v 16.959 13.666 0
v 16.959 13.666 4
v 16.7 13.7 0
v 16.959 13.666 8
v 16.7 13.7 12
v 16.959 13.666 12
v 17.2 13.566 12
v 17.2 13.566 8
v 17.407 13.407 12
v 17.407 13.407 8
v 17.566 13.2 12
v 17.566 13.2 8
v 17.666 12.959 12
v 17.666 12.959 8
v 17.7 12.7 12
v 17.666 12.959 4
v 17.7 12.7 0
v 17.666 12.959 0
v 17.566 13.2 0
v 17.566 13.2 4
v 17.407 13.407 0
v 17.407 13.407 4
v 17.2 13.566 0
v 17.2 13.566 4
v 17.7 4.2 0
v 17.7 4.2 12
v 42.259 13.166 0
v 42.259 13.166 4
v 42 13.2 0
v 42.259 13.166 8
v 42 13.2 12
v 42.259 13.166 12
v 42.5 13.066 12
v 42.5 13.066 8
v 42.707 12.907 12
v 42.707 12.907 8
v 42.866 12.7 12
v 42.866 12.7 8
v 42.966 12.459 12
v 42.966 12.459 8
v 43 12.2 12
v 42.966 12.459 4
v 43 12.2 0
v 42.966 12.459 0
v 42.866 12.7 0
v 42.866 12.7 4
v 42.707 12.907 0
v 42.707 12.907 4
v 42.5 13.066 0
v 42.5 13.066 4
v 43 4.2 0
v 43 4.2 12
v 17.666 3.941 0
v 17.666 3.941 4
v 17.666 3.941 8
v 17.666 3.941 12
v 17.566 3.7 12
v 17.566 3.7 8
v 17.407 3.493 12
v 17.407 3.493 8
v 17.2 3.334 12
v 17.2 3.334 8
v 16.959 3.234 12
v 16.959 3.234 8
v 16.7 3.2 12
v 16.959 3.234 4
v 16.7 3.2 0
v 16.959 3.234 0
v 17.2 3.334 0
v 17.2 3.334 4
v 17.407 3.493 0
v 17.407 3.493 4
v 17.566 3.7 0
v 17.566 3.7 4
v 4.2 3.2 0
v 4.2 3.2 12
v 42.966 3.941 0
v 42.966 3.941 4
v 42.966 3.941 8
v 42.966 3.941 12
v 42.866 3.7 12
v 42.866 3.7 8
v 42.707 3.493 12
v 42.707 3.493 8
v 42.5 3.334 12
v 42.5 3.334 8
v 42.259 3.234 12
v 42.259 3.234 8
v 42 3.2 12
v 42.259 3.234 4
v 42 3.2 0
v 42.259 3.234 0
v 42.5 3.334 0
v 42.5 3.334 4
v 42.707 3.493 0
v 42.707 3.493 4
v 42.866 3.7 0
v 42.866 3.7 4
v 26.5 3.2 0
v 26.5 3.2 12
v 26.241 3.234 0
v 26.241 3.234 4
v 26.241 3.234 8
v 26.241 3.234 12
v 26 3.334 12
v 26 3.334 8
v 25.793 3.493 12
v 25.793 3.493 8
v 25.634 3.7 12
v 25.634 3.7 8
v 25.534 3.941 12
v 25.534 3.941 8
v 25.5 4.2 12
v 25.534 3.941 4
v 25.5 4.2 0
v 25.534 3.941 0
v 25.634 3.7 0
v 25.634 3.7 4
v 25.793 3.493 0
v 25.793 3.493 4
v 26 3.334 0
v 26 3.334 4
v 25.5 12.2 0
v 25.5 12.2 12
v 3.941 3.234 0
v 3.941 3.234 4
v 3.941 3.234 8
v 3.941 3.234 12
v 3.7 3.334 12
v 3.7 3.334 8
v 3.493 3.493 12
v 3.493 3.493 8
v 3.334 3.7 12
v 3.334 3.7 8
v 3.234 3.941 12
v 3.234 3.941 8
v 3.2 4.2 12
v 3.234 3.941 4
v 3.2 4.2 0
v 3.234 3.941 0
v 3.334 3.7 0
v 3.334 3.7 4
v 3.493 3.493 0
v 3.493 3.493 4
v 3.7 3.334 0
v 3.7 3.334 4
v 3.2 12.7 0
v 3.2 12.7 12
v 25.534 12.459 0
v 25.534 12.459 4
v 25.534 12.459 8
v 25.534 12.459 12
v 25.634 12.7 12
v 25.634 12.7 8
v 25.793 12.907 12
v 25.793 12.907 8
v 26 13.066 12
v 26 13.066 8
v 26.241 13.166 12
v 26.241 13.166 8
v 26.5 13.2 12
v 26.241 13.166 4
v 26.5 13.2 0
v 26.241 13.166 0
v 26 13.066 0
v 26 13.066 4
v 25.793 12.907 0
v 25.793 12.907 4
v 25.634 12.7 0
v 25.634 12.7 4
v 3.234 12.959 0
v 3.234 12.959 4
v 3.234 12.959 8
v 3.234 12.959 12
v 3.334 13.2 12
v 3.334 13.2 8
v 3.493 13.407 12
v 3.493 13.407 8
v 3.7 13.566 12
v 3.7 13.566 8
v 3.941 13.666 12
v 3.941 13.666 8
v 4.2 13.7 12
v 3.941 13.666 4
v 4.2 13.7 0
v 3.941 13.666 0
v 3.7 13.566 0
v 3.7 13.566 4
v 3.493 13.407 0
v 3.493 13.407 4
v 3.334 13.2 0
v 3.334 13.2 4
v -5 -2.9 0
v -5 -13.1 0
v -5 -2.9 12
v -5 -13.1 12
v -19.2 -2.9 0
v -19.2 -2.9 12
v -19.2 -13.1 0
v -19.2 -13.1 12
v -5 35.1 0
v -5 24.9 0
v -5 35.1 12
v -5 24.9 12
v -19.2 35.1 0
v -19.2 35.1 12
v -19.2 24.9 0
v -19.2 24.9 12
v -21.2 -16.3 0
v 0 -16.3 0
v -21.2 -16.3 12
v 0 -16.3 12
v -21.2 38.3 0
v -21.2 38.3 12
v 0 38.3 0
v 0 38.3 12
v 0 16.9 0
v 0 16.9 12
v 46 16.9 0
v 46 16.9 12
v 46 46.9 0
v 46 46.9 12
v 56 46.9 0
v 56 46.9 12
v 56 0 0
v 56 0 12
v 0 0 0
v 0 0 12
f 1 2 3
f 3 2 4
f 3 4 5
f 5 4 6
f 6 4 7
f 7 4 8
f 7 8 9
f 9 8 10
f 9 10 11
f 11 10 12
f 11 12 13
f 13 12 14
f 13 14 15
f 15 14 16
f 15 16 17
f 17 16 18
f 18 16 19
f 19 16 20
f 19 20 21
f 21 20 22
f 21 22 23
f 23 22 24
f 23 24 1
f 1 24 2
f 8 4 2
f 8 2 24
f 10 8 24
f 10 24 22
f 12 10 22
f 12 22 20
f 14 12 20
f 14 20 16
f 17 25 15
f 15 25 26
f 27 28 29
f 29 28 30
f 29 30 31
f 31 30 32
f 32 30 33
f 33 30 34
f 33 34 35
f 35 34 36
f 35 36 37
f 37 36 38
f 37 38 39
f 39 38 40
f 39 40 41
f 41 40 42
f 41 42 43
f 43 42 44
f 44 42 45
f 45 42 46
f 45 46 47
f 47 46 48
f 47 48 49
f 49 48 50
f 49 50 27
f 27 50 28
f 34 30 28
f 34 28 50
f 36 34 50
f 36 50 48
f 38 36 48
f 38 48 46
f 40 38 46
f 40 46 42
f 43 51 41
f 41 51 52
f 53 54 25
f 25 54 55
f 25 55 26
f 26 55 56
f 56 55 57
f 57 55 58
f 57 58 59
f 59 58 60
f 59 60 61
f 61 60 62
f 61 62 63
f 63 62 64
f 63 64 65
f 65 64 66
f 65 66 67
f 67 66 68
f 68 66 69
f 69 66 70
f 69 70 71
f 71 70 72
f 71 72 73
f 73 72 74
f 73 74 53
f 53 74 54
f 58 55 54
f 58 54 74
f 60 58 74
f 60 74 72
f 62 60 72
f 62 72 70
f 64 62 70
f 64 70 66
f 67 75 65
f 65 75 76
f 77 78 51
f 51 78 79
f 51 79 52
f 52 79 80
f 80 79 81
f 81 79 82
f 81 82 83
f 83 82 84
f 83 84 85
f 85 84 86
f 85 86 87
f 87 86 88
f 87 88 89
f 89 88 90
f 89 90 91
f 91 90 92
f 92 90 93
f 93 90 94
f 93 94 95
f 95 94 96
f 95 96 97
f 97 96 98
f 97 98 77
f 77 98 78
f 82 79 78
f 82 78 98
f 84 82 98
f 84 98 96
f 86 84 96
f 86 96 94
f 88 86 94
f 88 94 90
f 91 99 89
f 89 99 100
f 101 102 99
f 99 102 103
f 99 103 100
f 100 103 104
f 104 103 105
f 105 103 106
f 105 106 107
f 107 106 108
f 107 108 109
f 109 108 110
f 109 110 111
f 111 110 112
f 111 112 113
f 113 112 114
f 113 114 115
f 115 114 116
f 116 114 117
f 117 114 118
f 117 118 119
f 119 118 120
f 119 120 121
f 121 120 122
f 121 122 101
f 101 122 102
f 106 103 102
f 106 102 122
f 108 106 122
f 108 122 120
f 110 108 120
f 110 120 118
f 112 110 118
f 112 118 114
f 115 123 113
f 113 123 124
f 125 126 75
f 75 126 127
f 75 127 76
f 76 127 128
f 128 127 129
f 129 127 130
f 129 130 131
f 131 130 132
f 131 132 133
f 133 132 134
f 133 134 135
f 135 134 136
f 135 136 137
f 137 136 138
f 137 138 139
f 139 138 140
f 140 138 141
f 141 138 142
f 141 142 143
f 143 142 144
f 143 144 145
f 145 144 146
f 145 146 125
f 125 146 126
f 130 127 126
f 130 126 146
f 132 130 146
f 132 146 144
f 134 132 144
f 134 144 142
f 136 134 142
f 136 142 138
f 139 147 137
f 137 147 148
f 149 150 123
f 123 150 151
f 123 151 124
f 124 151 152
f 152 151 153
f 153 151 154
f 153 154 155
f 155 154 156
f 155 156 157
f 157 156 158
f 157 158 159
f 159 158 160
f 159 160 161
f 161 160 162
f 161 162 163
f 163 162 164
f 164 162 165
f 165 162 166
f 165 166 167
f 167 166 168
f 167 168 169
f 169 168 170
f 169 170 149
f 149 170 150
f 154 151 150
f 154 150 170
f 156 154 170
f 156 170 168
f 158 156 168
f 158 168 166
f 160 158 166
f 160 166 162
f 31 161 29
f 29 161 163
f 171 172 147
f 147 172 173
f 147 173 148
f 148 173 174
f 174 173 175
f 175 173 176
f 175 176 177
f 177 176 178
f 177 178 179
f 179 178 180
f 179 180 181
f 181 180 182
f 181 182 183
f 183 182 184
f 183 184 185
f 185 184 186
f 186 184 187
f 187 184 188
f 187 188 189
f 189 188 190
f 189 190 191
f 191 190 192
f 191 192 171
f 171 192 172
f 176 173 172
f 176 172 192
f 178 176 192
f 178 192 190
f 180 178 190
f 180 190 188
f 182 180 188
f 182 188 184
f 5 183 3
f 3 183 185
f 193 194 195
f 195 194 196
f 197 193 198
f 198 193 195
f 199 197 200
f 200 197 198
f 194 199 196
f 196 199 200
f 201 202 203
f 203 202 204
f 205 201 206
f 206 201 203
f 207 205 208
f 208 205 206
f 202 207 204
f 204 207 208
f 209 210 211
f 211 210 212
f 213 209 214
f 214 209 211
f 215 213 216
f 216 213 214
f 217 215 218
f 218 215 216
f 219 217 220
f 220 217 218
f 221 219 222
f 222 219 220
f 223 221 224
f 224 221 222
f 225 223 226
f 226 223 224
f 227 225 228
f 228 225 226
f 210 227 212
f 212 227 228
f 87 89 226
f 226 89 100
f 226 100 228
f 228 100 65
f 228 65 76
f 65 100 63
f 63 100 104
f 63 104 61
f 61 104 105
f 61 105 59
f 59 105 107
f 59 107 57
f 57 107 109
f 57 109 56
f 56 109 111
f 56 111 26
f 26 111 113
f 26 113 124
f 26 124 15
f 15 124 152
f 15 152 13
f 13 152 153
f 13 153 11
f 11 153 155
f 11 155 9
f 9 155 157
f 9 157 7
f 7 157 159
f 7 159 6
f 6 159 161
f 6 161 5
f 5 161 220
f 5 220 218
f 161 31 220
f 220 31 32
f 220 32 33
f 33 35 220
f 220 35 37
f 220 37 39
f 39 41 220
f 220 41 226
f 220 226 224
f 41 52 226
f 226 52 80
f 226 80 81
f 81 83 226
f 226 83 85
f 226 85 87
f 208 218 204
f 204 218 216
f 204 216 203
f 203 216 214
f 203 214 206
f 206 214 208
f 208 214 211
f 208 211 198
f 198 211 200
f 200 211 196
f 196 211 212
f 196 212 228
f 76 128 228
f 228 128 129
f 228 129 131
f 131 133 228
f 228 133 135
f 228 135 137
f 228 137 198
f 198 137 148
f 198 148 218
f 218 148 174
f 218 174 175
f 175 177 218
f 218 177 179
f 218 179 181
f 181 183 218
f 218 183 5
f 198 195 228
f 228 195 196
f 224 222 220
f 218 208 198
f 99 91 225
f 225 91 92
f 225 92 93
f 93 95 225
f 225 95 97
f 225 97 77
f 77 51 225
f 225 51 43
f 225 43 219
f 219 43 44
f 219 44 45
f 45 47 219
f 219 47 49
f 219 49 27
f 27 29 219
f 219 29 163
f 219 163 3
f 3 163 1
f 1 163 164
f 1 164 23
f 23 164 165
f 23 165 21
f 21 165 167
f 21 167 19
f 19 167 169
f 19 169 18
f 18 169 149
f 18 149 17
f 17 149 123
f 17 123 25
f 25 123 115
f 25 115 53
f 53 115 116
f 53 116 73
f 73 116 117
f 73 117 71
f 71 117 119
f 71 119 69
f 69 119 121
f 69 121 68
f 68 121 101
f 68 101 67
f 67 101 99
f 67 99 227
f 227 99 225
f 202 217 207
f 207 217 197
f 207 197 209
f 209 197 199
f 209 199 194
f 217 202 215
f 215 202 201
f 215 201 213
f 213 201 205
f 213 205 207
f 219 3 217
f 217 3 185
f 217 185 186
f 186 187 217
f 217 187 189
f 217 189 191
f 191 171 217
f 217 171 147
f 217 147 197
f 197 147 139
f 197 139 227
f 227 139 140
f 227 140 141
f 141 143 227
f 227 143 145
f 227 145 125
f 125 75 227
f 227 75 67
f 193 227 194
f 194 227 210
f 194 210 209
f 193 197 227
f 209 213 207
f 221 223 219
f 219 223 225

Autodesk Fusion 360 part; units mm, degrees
sketch "スケッチ1" plane through (0, 0, 0) normal (0, 0, 1) x (1, 0, 0)
  line L0 (3.2, 13.7) -> (17.7, 13.7)
  line L1 (17.7, 13.7) -> (17.7, 3.2)
  line L2 (17.7, 3.2) -> (3.2, 3.2)
  line L3 (3.2, 3.2) -> (3.2, 13.7)
  line L4 (25.5, 13.2) -> (43, 13.2)
  line L5 (43, 13.2) -> (43, 3.2)
  line L6 (43, 3.2) -> (25.5, 3.2)
  line L7 (25.5, 3.2) -> (25.5, 13.2)
  line L8 (0, 0) -> (46, 0)
  line L9 (46, 0) -> (46, 16.9)
  line L10 (46, 16.9) -> (0, 16.9)
  line L11 (0, 16.9) -> (0, 0)
  line L12 (46, 0) -> (56, 0)
  line L13 (56, 0) -> (56, 46.9)
  line L14 (56, 46.9) -> (46, 46.9)
  line L15 (46, 46.9) -> (46, 0)
  line L16 (-19.2, 35.1) -> (-5, 35.1)
  line L17 (-5, 35.1) -> (-5, 24.9)
  line L18 (-5, 24.9) -> (-19.2, 24.9)
  line L19 (-19.2, 24.9) -> (-19.2, 35.1)
  line L20 (-19.2, -2.9) -> (-5, -2.9)
  line L21 (-5, -2.9) -> (-5, -13.1)
  line L22 (-5, -13.1) -> (-19.2, -13.1)
  line L23 (-19.2, -13.1) -> (-19.2, -2.9)
  line L24 (0, 16.9) -> (0, 38.3)
  line L25 (0, 38.3) -> (-21.2, 38.3)
  line L26 (-21.2, 38.3) -> (-21.2, -16.3)
  line L27 (-21.2, -16.3) -> (0, -16.3)
  line L28 (0, -16.3) -> (0, 0)
  dimension "d1" = 10.5
  dimension "d2" = 10
  dimension "d3" = 14.5
  dimension "d4" = 17.5
  dimension "d5" = 7.8
  dimension "d6" = 3.2
  dimension "d7" = 3.2
  dimension "d8" = 3.2
  dimension "d9" = 3.2
  dimension "d10" = 46
  dimension "d11" = 10
  dimension "d12" = 30
  dimension "d17" = 14.2
  dimension "d18" = 14.2
  dimension "d19" = 10.2
  dimension "d20" = 10.2
  dimension "d21" = 27.8
  dimension "d22" = 8
  dimension "d23" = 5
  dimension "d24" = 5
  dimension "d25" = 2
  dimension "d26" = 3.2
  dimension "d27" = 3.2
extrude "押し出し1" add sketch "スケッチ1" along normal blind 12
fillet "フィレット1" radius 1 8 edges at (3.2, 13.7, 6) (25.5, 13.2, 6) (3.2, 3.2, 6) (25.5, 3.2, 6) (43, 3.2, 6) (17.7, 3.2, 6) (43, 13.2, 6) (17.7, 13.7, 6)
